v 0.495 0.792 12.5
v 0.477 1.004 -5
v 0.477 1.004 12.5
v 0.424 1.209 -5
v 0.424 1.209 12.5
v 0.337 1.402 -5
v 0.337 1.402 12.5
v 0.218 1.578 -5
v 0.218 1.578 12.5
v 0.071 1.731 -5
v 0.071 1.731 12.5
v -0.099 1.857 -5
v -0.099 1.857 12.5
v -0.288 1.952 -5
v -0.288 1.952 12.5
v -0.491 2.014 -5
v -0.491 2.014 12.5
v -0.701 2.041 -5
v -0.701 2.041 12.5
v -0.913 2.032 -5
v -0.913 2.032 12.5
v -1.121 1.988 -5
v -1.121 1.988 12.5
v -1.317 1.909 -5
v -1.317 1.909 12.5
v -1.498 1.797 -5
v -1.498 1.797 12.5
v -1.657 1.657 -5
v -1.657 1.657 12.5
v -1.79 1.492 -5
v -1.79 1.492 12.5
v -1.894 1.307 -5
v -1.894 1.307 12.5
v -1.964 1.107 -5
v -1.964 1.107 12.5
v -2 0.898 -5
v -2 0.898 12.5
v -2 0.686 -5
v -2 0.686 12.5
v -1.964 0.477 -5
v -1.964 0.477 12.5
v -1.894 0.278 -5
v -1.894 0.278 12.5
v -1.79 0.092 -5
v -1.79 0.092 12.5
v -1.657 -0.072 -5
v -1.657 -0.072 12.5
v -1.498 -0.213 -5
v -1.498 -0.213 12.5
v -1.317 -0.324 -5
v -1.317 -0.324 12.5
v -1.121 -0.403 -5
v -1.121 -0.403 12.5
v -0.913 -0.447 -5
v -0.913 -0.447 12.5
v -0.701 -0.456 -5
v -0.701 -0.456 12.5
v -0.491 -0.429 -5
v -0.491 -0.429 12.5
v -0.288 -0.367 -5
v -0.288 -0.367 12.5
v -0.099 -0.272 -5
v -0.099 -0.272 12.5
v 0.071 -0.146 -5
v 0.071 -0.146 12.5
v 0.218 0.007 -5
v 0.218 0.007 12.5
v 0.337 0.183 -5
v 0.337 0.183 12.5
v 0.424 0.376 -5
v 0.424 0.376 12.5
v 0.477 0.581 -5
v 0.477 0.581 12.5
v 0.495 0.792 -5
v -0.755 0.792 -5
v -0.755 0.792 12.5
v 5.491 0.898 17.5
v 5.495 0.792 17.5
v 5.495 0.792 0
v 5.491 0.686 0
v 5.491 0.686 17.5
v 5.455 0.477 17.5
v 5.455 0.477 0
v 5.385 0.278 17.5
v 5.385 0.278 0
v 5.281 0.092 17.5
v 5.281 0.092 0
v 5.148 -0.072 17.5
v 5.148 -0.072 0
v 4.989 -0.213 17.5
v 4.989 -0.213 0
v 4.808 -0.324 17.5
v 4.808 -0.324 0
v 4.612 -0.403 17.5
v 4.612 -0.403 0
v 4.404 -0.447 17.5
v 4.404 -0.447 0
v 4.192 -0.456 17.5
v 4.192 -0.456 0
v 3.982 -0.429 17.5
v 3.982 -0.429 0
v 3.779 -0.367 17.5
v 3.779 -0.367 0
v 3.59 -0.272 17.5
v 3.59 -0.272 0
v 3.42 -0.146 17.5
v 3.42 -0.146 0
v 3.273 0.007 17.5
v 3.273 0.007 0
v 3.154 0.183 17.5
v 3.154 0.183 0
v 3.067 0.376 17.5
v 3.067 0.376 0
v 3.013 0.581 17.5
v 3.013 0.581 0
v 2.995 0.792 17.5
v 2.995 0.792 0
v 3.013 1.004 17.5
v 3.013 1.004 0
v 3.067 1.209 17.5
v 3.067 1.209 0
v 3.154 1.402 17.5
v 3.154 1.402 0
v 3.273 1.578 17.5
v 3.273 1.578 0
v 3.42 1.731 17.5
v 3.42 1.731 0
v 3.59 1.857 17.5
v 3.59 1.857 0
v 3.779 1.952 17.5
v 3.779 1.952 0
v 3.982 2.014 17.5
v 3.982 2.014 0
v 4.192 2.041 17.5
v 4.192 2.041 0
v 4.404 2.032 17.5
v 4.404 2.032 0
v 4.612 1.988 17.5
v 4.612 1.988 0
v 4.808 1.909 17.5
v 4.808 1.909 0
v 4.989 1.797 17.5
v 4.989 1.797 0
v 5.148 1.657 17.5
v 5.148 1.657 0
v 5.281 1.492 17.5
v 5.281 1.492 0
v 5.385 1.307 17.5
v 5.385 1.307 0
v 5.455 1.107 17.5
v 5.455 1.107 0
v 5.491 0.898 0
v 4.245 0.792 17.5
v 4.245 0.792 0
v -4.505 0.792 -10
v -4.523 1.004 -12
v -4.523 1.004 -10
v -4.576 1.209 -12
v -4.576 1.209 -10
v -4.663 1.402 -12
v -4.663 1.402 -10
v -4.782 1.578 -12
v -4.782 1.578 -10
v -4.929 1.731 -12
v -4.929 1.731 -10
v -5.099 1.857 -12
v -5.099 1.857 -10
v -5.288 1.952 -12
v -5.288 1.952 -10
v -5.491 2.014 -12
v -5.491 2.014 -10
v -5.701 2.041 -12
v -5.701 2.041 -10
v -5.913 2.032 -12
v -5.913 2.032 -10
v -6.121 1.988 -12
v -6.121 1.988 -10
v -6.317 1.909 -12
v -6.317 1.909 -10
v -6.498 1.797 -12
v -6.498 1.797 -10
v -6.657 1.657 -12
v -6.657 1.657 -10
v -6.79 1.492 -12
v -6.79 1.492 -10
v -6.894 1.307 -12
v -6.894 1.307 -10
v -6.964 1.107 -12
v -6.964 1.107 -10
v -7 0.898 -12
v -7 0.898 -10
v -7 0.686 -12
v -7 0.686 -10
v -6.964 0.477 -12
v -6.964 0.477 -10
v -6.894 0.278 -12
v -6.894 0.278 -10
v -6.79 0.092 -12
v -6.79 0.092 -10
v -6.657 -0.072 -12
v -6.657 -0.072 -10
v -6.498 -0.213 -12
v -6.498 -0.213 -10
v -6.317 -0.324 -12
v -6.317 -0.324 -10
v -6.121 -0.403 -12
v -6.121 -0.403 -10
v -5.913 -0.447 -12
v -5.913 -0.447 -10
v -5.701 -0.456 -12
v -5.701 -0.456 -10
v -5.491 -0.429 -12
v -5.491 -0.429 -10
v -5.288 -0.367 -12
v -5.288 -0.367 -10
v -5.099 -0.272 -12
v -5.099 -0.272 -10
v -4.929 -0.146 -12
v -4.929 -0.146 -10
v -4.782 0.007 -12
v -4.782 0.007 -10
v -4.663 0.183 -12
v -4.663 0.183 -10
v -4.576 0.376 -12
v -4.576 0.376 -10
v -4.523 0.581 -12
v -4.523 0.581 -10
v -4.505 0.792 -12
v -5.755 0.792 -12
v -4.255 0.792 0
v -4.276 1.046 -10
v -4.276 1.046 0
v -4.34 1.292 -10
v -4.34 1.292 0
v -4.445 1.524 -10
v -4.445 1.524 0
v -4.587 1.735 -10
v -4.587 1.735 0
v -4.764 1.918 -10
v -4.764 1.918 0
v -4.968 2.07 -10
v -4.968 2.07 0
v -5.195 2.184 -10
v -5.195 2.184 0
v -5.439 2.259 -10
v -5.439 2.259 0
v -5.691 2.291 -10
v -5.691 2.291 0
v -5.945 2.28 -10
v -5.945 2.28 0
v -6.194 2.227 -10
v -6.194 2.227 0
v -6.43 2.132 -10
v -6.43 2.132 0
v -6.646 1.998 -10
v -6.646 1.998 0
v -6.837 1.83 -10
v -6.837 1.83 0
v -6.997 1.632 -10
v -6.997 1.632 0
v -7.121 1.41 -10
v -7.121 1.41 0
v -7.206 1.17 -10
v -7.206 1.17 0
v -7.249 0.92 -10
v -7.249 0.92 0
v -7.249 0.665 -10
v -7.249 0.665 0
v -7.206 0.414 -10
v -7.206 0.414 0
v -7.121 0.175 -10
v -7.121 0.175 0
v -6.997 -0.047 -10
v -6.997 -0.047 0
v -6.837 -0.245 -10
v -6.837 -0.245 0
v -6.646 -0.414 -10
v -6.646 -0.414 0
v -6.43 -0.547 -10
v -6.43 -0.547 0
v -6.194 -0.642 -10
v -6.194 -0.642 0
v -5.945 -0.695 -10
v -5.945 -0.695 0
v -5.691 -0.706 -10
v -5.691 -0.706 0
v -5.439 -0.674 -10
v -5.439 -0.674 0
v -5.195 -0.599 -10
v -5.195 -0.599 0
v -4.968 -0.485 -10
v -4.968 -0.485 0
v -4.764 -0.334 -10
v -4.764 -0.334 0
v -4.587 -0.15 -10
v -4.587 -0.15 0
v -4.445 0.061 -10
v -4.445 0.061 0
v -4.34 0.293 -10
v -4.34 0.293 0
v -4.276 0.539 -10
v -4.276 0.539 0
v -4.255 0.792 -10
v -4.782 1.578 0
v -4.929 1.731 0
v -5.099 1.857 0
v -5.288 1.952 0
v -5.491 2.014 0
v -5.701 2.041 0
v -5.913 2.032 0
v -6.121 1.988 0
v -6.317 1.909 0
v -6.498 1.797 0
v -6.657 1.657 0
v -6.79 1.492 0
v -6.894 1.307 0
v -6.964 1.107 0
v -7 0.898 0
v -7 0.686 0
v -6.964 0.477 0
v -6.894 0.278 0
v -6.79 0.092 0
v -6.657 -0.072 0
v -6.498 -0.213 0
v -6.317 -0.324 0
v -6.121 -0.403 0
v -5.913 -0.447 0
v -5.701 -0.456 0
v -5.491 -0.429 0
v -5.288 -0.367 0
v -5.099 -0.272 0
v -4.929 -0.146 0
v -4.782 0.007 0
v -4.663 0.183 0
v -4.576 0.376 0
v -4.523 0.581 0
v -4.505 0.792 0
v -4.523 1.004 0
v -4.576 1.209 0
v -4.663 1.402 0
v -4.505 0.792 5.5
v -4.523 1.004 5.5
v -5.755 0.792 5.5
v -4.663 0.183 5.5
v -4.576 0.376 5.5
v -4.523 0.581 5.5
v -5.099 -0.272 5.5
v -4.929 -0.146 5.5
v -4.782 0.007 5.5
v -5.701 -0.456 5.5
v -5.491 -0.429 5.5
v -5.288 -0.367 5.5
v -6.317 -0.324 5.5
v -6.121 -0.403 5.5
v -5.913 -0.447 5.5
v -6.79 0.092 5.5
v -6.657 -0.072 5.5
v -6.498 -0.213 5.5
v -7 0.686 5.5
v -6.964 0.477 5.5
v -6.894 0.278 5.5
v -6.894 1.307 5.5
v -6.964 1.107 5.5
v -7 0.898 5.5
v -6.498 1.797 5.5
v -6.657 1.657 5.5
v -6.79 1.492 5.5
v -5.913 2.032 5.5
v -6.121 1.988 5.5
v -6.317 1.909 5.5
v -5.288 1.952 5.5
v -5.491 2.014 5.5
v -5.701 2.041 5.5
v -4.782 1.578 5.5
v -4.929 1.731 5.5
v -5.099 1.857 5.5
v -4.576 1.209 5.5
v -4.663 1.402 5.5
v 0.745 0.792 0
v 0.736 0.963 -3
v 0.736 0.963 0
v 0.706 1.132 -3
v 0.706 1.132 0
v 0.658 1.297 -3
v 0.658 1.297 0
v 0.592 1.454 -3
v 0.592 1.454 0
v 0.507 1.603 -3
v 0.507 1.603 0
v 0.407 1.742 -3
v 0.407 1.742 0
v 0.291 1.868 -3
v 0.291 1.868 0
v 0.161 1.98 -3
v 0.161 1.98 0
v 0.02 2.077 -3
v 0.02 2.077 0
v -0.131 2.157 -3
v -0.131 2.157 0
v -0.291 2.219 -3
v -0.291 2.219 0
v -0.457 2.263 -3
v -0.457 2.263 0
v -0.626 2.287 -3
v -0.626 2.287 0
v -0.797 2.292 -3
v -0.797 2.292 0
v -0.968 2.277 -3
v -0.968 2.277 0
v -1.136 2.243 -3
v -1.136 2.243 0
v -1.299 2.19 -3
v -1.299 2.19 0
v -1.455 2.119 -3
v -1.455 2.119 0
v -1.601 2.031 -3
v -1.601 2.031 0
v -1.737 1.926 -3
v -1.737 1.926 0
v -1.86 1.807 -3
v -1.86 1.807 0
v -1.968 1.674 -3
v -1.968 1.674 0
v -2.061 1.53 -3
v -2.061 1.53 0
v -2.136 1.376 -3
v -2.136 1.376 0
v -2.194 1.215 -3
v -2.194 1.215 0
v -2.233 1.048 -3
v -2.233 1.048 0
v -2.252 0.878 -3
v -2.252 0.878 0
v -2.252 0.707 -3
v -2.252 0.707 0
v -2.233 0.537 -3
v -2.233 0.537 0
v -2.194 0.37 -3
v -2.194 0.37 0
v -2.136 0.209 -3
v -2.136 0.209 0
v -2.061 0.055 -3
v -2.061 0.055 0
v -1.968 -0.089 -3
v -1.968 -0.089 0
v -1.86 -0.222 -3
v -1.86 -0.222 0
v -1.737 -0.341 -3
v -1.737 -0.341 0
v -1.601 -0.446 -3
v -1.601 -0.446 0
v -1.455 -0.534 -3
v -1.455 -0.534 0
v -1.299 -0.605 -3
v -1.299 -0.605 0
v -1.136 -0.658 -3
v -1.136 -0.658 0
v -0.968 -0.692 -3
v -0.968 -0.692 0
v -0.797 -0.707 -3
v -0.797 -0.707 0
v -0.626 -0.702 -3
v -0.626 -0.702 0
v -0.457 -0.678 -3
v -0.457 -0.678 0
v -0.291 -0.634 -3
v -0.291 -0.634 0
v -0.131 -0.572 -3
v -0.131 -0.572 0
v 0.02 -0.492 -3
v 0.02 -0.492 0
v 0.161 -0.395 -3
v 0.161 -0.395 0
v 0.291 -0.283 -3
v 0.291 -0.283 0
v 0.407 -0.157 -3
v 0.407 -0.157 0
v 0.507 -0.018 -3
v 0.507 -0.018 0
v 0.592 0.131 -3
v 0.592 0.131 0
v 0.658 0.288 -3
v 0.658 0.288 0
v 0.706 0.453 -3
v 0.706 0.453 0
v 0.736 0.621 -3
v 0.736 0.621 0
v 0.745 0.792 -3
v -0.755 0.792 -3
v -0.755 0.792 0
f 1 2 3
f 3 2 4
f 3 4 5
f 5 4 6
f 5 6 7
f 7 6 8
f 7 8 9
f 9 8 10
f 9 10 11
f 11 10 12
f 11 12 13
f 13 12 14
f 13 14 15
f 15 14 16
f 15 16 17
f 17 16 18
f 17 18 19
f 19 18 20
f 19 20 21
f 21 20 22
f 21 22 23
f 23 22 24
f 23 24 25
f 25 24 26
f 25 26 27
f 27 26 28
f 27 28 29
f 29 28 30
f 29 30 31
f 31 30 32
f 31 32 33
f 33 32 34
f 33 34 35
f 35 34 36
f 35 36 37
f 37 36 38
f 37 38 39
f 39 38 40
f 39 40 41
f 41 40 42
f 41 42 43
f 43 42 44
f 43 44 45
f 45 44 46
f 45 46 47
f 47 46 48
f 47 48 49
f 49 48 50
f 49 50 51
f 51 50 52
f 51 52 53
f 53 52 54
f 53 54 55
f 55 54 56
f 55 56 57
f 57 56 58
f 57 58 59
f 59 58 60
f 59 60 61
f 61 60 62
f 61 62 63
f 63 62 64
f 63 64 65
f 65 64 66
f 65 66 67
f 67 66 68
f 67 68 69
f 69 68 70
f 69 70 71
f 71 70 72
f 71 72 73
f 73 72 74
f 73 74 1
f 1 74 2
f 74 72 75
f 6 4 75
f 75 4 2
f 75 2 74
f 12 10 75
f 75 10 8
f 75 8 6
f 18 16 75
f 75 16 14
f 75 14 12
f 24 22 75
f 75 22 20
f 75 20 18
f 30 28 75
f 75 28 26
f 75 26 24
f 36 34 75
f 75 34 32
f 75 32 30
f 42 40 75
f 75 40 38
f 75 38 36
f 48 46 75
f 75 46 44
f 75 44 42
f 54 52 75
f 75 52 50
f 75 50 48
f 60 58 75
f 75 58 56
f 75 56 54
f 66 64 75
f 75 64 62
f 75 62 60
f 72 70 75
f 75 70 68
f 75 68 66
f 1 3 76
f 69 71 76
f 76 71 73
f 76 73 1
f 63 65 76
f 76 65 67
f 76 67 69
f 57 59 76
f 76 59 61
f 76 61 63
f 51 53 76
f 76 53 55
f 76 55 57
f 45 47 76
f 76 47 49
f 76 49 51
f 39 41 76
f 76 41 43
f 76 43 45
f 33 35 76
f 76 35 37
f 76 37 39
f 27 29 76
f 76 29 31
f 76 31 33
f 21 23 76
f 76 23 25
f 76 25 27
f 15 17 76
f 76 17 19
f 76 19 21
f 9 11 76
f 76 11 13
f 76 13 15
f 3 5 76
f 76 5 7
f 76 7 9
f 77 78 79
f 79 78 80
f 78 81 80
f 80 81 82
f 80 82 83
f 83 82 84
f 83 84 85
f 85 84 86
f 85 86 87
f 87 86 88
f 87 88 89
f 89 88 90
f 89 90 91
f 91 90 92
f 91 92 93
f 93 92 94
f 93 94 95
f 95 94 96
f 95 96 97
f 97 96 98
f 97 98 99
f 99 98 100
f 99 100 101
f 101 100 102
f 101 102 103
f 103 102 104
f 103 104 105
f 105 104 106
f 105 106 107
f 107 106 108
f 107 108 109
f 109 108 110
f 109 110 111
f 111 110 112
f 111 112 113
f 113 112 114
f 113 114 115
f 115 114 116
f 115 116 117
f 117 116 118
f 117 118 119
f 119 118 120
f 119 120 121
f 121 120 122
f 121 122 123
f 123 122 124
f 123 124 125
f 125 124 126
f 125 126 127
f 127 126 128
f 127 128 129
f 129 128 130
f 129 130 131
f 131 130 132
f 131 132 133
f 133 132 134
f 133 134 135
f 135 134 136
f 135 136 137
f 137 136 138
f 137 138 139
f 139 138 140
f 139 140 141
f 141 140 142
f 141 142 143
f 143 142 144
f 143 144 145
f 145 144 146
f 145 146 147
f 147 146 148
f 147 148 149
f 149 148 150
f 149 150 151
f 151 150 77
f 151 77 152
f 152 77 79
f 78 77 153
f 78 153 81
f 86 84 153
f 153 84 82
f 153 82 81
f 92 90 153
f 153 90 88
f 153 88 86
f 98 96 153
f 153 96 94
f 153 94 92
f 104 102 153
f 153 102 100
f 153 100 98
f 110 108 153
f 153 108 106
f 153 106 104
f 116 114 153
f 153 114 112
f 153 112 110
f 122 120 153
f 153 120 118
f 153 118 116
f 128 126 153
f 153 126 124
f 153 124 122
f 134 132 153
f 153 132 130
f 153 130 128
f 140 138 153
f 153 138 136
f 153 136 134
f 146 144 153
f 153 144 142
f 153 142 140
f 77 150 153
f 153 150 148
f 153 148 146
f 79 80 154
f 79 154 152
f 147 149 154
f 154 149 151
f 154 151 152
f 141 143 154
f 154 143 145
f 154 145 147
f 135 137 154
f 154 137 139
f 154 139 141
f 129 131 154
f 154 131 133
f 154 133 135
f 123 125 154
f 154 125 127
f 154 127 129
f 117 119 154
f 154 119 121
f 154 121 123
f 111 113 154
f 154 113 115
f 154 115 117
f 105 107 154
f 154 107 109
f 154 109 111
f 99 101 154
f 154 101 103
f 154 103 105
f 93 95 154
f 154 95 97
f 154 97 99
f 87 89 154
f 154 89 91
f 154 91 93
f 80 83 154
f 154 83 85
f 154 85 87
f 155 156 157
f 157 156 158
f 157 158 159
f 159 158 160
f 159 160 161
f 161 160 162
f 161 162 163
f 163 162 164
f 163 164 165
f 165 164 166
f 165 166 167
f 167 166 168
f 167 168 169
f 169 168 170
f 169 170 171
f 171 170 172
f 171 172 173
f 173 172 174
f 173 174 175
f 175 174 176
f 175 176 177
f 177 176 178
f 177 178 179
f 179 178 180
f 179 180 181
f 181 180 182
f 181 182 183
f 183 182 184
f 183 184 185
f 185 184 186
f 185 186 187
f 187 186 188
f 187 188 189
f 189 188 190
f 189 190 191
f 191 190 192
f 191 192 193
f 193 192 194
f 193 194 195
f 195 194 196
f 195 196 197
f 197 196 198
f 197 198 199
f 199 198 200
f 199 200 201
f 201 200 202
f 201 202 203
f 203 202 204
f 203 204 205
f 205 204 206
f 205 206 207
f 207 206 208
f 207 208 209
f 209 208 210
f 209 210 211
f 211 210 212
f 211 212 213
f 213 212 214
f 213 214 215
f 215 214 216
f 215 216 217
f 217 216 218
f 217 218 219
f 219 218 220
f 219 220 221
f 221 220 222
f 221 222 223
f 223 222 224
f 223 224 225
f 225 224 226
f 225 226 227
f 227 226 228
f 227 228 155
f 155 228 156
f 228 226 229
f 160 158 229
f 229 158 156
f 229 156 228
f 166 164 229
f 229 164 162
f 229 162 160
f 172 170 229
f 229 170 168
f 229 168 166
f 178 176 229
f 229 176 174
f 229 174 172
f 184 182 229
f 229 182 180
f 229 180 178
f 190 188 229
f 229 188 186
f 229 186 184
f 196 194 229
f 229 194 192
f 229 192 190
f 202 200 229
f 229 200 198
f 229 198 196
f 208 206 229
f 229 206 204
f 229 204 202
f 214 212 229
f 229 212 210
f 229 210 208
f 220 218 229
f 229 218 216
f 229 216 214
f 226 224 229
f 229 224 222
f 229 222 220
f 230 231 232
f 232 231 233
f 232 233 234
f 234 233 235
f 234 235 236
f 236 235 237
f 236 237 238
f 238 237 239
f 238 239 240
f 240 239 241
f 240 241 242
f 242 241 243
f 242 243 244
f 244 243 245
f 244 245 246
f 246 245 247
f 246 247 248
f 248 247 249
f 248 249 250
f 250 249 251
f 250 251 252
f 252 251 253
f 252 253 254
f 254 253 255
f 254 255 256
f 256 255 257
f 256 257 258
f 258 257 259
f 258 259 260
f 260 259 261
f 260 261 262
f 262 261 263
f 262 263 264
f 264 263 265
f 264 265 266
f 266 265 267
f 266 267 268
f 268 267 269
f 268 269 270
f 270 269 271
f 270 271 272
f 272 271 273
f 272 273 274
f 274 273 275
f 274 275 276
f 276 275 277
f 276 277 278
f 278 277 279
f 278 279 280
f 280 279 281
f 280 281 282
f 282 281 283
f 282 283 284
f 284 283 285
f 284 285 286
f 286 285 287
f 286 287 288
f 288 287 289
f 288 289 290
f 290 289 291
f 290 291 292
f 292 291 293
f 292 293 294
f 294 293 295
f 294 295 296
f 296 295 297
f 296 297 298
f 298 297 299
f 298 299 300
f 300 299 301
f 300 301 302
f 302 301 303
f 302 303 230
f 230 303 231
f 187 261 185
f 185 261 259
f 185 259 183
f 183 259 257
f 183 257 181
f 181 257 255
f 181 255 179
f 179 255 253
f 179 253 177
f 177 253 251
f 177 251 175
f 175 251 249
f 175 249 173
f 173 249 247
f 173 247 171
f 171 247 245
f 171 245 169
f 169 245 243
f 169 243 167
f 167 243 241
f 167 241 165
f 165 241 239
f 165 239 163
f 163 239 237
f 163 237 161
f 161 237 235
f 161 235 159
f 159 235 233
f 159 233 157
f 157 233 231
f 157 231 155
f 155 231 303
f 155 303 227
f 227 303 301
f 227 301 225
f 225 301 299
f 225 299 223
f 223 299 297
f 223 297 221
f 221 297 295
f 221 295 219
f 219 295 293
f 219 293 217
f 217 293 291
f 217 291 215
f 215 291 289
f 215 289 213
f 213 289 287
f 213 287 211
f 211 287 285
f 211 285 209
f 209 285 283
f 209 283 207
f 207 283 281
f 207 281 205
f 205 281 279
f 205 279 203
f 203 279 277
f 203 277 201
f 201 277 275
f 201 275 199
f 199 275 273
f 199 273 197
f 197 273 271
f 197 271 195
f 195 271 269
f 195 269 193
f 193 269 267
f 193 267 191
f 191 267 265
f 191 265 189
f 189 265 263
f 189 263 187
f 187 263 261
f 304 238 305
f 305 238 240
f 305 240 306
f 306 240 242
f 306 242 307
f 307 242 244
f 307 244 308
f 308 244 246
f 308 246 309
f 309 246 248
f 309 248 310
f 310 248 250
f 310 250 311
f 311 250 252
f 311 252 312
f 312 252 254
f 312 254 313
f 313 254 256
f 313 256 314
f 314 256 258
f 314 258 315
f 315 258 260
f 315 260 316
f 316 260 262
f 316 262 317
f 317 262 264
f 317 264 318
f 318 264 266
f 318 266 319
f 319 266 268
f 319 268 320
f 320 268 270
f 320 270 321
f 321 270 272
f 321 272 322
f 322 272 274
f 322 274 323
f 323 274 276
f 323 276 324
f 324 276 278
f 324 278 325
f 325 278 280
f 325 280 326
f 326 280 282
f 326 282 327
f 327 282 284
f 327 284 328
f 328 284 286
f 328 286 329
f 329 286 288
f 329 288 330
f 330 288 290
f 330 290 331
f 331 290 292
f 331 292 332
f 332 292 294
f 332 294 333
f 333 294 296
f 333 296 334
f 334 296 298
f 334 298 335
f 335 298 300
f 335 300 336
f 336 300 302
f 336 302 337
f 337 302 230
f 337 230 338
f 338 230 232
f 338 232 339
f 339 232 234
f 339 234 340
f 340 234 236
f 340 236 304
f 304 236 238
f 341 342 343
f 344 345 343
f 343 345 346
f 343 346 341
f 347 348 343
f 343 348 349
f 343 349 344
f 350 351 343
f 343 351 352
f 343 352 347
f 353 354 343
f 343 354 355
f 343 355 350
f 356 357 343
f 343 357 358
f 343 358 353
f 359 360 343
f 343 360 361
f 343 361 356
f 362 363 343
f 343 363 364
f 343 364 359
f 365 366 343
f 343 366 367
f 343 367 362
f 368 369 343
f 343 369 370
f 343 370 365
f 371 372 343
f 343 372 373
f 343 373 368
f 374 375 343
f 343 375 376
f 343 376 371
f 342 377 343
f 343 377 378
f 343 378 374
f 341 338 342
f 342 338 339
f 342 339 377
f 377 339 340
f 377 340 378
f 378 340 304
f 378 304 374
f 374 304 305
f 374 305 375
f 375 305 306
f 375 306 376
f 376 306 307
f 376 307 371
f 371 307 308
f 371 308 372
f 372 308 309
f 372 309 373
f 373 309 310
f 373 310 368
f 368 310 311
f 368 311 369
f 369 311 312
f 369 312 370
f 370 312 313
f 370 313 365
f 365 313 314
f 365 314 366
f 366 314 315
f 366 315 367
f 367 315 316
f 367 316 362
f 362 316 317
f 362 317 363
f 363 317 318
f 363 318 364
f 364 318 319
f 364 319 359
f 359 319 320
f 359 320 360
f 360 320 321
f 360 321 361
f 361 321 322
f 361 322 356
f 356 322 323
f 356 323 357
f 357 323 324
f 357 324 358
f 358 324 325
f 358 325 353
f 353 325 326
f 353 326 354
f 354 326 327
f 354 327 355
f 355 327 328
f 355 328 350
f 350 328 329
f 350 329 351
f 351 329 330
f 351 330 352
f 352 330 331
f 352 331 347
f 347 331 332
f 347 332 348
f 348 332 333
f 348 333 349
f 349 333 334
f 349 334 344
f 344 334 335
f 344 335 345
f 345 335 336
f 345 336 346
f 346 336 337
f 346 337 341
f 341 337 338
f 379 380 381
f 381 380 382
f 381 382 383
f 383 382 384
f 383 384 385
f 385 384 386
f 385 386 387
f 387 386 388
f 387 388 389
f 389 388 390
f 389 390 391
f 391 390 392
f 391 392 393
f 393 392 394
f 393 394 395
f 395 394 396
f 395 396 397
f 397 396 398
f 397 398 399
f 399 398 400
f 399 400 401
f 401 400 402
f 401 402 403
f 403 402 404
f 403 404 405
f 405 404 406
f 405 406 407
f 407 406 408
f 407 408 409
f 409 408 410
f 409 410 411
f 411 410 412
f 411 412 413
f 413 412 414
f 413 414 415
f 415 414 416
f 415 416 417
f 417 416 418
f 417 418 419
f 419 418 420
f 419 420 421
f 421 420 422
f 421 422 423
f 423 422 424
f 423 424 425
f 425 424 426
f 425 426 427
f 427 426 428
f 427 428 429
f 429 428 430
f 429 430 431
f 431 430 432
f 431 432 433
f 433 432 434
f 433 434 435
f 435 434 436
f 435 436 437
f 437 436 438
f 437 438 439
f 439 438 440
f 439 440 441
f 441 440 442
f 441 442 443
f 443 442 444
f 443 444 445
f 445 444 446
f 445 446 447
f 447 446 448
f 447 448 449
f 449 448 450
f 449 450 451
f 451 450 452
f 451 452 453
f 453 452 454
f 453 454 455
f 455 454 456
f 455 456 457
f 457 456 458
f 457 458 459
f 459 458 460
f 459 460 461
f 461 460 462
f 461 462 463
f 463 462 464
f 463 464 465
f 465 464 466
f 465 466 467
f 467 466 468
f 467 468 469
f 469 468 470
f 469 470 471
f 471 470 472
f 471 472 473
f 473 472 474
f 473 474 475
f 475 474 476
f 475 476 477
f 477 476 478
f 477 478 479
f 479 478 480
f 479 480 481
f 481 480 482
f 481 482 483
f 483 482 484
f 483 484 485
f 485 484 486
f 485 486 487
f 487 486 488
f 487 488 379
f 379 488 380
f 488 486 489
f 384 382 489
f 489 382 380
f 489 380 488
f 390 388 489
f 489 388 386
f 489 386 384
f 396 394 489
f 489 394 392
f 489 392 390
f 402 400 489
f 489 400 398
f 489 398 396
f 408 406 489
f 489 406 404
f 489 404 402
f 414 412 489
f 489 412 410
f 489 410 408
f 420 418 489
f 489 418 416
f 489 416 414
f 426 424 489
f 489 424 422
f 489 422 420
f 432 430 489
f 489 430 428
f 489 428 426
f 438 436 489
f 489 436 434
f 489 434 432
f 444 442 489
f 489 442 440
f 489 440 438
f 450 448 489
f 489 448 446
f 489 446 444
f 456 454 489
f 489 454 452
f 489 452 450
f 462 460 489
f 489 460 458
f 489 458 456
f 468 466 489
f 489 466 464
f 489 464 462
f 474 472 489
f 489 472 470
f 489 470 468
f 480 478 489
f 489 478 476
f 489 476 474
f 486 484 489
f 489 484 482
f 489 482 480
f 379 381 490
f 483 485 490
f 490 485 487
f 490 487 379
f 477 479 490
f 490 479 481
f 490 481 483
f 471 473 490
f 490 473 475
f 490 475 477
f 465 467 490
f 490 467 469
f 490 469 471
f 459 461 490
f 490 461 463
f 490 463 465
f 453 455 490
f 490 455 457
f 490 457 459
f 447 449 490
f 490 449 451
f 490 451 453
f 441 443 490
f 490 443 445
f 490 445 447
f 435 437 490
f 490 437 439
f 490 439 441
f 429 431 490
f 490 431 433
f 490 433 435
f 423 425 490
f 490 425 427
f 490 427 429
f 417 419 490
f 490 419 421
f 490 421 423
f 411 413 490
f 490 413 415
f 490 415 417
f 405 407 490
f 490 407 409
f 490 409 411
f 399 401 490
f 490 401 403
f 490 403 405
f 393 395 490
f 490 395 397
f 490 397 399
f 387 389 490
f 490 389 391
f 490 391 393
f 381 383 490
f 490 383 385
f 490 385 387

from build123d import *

# Parameters (mm, degrees)
RESSALTO_EXTRUS_O1_DEPTH      = 5.5
RESSALTO_EXTRUS_O1_DEPTH_BACK = 12
ESBO_O1_R                     = 1.25
RESSALTO_EXTRUS_O2_DEPTH      = 12.5
RESSALTO_EXTRUS_O2_DEPTH_BACK = 5
ESBO_O1_4_R                   = 1.25
ESBO_O2_R                     = 1.25
RESSALTO_EXTRUS_O3_DEPTH      = 17.5
ESBO_O6_R                     = 1.5
RESSALTO_EXTRUS_O4_DEPTH      = 10
ESBO_O7_R                     = 1.5
RESSALTO_EXTRUS_O5_DEPTH      = 3


with BuildPart() as part:
    # Esboço1 → Ressalto-extrusão1 (new, two sides: drawn at the far end of the back side and taken through both)
    with BuildSketch(Plane.XY.offset(-RESSALTO_EXTRUS_O1_DEPTH_BACK)):
        with Locations((-5.75452307, 0.792466101)):
            Circle(ESBO_O1_R)
    extrude(amount=RESSALTO_EXTRUS_O1_DEPTH + RESSALTO_EXTRUS_O1_DEPTH_BACK)

    # Esboço6 → Ressalto-extrusão4 (add)
    with BuildSketch(Plane.XY):
        with Locations((-5.75452307, 0.792466101)):
            Circle(ESBO_O6_R)
    extrude(amount=-RESSALTO_EXTRUS_O4_DEPTH)


with BuildPart() as body_2:
    # Esboço1<4> → Ressalto-extrusão2 (new, two sides: drawn at the far end of the back side and taken through both)
    with BuildSketch(Plane.XY.offset(-RESSALTO_EXTRUS_O2_DEPTH_BACK)):
        with Locations((-0.75452307, 0.792466101)):
            Circle(ESBO_O1_4_R)
    extrude(amount=RESSALTO_EXTRUS_O2_DEPTH + RESSALTO_EXTRUS_O2_DEPTH_BACK)


with BuildPart() as body_3:
    # Esboço2 → Ressalto-extrusão3 (new body)
    with BuildSketch(Plane.XY):
        with Locations((4.24547693, 0.792466101)):
            Circle(ESBO_O2_R)
    extrude(amount=RESSALTO_EXTRUS_O3_DEPTH)


with BuildPart() as body_4:
    # Esboço7 → Ressalto-extrusão5 (new body)
    with BuildSketch(Plane.XY):
        with Locations((-0.75452307, 0.792466101)):
            Circle(ESBO_O7_R)
    extrude(amount=-RESSALTO_EXTRUS_O5_DEPTH)


solid = Compound([part.part, body_2.part, body_3.part, body_4.part])
